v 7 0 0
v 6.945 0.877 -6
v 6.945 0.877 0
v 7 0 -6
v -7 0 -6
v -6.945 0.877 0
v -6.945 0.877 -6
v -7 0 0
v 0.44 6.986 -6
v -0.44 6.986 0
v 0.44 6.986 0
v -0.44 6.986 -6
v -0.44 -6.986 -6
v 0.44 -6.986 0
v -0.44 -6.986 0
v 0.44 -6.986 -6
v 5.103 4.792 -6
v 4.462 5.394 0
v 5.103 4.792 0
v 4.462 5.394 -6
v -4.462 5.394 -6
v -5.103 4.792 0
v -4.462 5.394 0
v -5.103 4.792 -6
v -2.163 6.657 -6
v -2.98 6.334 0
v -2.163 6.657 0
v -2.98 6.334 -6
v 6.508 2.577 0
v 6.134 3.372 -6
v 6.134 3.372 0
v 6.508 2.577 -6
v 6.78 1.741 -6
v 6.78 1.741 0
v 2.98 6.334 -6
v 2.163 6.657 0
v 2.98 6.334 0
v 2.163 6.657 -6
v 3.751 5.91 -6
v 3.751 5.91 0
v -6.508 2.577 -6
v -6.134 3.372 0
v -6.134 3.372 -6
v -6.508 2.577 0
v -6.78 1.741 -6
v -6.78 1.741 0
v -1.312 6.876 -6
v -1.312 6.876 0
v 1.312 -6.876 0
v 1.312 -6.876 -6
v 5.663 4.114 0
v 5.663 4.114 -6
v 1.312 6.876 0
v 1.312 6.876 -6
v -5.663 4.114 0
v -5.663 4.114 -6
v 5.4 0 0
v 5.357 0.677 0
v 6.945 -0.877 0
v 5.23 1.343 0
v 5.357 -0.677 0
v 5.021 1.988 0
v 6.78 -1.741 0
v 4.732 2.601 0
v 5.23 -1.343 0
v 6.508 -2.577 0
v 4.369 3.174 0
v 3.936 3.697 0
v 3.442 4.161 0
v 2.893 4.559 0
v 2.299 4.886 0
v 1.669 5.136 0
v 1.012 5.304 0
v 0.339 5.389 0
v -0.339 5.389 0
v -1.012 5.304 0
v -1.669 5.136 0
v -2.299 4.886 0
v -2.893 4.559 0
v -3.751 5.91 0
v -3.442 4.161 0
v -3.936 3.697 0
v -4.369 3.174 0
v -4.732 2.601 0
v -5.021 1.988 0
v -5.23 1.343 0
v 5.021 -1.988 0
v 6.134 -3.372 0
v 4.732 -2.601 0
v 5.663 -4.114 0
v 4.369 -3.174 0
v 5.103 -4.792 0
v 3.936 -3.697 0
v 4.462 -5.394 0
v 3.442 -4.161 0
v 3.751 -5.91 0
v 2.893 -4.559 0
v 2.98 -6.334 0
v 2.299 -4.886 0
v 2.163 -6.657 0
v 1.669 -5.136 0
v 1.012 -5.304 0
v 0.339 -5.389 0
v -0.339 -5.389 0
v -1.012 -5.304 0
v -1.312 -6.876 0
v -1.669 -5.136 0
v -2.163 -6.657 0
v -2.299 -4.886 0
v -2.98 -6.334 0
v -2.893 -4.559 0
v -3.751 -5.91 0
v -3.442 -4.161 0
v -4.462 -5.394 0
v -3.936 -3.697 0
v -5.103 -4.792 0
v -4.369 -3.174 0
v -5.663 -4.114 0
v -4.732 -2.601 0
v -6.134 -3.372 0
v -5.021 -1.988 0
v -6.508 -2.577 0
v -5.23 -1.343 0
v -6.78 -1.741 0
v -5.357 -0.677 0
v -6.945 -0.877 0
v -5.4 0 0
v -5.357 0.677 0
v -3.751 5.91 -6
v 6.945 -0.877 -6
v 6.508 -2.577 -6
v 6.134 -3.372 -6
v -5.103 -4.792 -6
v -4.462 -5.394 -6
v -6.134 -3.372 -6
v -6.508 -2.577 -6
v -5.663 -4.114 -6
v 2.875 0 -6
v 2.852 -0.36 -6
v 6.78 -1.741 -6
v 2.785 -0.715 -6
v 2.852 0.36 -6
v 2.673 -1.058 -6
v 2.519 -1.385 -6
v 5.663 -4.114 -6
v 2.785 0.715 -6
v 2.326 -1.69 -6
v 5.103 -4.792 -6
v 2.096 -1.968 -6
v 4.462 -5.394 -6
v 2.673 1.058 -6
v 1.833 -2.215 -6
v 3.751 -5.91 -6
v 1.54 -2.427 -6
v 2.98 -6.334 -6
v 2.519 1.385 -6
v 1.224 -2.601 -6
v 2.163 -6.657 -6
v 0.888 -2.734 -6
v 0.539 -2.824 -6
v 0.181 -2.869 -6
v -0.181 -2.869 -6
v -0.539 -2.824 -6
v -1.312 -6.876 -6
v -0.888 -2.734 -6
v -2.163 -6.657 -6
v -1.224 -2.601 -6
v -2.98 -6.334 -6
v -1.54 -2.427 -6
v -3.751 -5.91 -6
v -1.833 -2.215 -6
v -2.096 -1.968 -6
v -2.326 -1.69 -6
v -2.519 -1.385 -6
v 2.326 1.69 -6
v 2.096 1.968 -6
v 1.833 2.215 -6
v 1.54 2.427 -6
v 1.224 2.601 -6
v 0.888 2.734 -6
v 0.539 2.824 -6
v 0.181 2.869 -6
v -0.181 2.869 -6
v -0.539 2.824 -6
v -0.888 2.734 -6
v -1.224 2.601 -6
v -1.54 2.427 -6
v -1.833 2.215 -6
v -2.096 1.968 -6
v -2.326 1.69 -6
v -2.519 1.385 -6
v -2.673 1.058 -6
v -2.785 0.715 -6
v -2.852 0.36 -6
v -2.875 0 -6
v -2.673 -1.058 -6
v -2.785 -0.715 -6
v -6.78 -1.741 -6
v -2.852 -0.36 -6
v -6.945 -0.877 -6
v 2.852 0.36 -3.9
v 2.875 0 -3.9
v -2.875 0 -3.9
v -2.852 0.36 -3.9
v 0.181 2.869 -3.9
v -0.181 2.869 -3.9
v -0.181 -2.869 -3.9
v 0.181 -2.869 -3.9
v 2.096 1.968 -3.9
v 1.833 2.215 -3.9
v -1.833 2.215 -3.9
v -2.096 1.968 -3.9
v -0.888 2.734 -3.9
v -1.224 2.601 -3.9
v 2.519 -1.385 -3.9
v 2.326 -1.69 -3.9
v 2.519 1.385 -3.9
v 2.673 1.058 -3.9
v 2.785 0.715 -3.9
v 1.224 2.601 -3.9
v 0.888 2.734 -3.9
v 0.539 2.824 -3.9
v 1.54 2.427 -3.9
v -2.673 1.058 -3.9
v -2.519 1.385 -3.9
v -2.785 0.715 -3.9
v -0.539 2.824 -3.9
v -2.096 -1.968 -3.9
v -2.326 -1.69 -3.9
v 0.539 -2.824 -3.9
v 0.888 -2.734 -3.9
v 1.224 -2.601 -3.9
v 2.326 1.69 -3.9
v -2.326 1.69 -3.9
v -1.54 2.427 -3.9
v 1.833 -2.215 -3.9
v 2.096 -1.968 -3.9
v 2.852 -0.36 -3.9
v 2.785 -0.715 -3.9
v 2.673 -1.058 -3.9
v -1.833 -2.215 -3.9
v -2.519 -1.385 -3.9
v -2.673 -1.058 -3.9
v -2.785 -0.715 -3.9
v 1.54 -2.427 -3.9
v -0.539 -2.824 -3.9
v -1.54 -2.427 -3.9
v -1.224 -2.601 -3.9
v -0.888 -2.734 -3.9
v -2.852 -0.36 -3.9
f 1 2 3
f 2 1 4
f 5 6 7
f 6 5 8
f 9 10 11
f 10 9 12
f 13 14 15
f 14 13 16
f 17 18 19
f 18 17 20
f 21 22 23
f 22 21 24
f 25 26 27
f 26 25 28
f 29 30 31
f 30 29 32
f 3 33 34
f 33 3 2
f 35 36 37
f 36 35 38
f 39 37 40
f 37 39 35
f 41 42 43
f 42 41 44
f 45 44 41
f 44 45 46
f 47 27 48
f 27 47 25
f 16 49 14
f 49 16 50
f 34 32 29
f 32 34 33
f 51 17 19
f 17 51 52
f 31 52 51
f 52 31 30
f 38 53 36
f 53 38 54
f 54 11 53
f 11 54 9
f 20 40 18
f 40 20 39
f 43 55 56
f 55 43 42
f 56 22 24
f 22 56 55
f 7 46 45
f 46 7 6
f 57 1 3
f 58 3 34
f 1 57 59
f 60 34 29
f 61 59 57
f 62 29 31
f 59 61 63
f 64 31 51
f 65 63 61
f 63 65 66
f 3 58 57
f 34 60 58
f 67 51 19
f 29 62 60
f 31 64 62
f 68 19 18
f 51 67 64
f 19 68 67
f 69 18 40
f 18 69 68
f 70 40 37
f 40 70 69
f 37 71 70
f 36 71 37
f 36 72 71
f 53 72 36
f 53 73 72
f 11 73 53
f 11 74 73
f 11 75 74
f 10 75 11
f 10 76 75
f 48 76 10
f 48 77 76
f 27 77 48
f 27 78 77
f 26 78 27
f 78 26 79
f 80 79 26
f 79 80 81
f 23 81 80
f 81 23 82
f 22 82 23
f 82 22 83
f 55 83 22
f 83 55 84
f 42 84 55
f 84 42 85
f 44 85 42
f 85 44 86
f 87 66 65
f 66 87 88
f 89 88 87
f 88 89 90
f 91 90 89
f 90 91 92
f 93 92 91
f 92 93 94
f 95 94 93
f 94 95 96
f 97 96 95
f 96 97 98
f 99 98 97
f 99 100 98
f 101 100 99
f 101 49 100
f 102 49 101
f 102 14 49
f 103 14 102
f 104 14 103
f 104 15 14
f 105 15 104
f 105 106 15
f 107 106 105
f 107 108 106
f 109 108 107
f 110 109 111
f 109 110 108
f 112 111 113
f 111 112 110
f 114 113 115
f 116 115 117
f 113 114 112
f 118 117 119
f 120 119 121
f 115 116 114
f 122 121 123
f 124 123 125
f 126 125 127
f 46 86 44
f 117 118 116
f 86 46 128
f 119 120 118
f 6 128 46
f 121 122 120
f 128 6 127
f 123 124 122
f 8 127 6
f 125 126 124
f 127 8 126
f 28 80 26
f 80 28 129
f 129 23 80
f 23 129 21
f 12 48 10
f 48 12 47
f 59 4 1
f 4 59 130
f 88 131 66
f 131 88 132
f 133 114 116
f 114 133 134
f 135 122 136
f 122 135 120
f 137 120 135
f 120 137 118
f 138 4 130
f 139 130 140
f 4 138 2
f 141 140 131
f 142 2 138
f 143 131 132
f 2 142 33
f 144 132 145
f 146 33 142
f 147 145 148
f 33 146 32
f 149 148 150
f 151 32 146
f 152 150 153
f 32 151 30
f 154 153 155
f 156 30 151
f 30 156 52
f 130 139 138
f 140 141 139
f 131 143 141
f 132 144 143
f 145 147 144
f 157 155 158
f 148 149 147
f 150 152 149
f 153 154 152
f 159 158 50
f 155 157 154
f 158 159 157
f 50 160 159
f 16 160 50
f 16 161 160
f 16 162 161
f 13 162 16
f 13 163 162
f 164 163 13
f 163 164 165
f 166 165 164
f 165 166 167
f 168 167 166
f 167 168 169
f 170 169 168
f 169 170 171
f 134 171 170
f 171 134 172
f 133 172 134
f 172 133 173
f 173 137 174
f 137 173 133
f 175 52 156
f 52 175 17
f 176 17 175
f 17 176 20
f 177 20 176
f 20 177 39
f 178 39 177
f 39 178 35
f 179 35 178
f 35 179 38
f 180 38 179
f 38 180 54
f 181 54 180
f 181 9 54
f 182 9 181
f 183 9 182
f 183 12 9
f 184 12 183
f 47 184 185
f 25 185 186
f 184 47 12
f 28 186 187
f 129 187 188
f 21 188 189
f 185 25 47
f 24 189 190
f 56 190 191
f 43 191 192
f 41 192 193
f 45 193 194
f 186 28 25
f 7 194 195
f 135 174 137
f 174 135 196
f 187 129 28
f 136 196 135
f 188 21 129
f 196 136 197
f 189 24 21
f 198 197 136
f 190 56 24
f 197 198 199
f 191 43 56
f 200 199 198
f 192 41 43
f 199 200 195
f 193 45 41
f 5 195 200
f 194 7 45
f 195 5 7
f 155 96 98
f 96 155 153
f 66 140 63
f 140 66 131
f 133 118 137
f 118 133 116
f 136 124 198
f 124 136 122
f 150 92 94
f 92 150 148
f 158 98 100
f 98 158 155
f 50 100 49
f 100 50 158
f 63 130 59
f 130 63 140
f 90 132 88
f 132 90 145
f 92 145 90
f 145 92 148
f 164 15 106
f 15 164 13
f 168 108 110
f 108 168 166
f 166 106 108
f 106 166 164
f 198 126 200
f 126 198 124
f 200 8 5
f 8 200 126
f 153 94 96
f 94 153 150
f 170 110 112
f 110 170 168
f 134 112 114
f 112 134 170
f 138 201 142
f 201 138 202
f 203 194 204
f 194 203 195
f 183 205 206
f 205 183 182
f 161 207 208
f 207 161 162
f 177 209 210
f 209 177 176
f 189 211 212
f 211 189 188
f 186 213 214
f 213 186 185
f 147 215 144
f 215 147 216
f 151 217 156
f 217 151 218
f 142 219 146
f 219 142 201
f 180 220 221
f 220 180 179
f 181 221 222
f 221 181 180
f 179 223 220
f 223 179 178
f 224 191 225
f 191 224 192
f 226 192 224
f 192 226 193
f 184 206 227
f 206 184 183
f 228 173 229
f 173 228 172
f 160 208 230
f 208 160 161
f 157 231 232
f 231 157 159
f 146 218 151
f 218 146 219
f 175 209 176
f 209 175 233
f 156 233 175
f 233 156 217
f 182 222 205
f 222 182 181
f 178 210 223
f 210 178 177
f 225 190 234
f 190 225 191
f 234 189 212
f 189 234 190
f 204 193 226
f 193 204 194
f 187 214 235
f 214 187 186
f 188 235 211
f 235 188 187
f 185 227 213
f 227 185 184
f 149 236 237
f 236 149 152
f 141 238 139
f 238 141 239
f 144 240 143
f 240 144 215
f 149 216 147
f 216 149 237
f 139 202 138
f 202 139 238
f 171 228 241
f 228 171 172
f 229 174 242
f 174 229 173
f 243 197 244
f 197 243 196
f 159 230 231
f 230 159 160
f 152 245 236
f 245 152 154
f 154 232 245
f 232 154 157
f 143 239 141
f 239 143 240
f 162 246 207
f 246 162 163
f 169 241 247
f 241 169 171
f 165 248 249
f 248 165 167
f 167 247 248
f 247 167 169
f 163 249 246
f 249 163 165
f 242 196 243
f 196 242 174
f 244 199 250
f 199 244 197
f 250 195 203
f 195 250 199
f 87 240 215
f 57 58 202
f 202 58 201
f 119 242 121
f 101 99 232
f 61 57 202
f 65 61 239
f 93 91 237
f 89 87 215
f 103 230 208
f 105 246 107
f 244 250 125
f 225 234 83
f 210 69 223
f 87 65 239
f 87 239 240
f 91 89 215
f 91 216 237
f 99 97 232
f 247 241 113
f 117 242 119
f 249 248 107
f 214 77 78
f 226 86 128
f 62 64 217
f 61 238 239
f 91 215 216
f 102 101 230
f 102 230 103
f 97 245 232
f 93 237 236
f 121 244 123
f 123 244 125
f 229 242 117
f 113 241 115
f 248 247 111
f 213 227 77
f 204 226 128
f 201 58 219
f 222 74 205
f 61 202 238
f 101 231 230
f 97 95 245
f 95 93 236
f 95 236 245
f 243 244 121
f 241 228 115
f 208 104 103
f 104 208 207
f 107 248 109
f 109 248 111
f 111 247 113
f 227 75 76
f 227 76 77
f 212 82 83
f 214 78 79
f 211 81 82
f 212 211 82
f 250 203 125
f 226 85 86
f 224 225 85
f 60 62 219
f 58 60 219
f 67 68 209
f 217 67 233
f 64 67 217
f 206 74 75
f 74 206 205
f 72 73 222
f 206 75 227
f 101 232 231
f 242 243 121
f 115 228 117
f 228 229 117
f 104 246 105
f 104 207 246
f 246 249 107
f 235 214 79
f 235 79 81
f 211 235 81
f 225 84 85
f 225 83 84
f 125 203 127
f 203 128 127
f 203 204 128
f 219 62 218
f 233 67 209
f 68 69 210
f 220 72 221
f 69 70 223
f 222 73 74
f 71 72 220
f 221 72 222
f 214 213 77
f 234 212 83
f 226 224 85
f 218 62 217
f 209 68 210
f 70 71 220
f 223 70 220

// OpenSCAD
$fn = 50;


difference() {
	union() {
		translate(v = [0, 0, -6.0000000000]) {
			cylinder(h = 6, r = 7.0000000000);
		}
		translate(v = [0, 0, -9.0000000000]) {
			cylinder(h = 9, r = 2.8750000000);
		}
	}
	union() {
		translate(v = [0, 0, 0]) {
			rotate(a = [0, 0, 0]) {
				difference() {
					union() {
						translate(v = [0, 0, -9.0000000000]) {
							cylinder(h = 9, r = 2.6000000000);
						}
						translate(v = [0, 0, -3.9000000000]) {
							cylinder(h = 3.9000000000, r1 = 2.8750000000, r2 = 5.4000000000);
						}
						translate(v = [0, 0, -9.0000000000]) {
							cylinder(h = 9, r = 2.8750000000);
						}
						translate(v = [0, 0, -9.0000000000]) {
							cylinder(h = 9, r = 2.6000000000);
						}
					}
					union();
				}
			}
		}
	}
}
